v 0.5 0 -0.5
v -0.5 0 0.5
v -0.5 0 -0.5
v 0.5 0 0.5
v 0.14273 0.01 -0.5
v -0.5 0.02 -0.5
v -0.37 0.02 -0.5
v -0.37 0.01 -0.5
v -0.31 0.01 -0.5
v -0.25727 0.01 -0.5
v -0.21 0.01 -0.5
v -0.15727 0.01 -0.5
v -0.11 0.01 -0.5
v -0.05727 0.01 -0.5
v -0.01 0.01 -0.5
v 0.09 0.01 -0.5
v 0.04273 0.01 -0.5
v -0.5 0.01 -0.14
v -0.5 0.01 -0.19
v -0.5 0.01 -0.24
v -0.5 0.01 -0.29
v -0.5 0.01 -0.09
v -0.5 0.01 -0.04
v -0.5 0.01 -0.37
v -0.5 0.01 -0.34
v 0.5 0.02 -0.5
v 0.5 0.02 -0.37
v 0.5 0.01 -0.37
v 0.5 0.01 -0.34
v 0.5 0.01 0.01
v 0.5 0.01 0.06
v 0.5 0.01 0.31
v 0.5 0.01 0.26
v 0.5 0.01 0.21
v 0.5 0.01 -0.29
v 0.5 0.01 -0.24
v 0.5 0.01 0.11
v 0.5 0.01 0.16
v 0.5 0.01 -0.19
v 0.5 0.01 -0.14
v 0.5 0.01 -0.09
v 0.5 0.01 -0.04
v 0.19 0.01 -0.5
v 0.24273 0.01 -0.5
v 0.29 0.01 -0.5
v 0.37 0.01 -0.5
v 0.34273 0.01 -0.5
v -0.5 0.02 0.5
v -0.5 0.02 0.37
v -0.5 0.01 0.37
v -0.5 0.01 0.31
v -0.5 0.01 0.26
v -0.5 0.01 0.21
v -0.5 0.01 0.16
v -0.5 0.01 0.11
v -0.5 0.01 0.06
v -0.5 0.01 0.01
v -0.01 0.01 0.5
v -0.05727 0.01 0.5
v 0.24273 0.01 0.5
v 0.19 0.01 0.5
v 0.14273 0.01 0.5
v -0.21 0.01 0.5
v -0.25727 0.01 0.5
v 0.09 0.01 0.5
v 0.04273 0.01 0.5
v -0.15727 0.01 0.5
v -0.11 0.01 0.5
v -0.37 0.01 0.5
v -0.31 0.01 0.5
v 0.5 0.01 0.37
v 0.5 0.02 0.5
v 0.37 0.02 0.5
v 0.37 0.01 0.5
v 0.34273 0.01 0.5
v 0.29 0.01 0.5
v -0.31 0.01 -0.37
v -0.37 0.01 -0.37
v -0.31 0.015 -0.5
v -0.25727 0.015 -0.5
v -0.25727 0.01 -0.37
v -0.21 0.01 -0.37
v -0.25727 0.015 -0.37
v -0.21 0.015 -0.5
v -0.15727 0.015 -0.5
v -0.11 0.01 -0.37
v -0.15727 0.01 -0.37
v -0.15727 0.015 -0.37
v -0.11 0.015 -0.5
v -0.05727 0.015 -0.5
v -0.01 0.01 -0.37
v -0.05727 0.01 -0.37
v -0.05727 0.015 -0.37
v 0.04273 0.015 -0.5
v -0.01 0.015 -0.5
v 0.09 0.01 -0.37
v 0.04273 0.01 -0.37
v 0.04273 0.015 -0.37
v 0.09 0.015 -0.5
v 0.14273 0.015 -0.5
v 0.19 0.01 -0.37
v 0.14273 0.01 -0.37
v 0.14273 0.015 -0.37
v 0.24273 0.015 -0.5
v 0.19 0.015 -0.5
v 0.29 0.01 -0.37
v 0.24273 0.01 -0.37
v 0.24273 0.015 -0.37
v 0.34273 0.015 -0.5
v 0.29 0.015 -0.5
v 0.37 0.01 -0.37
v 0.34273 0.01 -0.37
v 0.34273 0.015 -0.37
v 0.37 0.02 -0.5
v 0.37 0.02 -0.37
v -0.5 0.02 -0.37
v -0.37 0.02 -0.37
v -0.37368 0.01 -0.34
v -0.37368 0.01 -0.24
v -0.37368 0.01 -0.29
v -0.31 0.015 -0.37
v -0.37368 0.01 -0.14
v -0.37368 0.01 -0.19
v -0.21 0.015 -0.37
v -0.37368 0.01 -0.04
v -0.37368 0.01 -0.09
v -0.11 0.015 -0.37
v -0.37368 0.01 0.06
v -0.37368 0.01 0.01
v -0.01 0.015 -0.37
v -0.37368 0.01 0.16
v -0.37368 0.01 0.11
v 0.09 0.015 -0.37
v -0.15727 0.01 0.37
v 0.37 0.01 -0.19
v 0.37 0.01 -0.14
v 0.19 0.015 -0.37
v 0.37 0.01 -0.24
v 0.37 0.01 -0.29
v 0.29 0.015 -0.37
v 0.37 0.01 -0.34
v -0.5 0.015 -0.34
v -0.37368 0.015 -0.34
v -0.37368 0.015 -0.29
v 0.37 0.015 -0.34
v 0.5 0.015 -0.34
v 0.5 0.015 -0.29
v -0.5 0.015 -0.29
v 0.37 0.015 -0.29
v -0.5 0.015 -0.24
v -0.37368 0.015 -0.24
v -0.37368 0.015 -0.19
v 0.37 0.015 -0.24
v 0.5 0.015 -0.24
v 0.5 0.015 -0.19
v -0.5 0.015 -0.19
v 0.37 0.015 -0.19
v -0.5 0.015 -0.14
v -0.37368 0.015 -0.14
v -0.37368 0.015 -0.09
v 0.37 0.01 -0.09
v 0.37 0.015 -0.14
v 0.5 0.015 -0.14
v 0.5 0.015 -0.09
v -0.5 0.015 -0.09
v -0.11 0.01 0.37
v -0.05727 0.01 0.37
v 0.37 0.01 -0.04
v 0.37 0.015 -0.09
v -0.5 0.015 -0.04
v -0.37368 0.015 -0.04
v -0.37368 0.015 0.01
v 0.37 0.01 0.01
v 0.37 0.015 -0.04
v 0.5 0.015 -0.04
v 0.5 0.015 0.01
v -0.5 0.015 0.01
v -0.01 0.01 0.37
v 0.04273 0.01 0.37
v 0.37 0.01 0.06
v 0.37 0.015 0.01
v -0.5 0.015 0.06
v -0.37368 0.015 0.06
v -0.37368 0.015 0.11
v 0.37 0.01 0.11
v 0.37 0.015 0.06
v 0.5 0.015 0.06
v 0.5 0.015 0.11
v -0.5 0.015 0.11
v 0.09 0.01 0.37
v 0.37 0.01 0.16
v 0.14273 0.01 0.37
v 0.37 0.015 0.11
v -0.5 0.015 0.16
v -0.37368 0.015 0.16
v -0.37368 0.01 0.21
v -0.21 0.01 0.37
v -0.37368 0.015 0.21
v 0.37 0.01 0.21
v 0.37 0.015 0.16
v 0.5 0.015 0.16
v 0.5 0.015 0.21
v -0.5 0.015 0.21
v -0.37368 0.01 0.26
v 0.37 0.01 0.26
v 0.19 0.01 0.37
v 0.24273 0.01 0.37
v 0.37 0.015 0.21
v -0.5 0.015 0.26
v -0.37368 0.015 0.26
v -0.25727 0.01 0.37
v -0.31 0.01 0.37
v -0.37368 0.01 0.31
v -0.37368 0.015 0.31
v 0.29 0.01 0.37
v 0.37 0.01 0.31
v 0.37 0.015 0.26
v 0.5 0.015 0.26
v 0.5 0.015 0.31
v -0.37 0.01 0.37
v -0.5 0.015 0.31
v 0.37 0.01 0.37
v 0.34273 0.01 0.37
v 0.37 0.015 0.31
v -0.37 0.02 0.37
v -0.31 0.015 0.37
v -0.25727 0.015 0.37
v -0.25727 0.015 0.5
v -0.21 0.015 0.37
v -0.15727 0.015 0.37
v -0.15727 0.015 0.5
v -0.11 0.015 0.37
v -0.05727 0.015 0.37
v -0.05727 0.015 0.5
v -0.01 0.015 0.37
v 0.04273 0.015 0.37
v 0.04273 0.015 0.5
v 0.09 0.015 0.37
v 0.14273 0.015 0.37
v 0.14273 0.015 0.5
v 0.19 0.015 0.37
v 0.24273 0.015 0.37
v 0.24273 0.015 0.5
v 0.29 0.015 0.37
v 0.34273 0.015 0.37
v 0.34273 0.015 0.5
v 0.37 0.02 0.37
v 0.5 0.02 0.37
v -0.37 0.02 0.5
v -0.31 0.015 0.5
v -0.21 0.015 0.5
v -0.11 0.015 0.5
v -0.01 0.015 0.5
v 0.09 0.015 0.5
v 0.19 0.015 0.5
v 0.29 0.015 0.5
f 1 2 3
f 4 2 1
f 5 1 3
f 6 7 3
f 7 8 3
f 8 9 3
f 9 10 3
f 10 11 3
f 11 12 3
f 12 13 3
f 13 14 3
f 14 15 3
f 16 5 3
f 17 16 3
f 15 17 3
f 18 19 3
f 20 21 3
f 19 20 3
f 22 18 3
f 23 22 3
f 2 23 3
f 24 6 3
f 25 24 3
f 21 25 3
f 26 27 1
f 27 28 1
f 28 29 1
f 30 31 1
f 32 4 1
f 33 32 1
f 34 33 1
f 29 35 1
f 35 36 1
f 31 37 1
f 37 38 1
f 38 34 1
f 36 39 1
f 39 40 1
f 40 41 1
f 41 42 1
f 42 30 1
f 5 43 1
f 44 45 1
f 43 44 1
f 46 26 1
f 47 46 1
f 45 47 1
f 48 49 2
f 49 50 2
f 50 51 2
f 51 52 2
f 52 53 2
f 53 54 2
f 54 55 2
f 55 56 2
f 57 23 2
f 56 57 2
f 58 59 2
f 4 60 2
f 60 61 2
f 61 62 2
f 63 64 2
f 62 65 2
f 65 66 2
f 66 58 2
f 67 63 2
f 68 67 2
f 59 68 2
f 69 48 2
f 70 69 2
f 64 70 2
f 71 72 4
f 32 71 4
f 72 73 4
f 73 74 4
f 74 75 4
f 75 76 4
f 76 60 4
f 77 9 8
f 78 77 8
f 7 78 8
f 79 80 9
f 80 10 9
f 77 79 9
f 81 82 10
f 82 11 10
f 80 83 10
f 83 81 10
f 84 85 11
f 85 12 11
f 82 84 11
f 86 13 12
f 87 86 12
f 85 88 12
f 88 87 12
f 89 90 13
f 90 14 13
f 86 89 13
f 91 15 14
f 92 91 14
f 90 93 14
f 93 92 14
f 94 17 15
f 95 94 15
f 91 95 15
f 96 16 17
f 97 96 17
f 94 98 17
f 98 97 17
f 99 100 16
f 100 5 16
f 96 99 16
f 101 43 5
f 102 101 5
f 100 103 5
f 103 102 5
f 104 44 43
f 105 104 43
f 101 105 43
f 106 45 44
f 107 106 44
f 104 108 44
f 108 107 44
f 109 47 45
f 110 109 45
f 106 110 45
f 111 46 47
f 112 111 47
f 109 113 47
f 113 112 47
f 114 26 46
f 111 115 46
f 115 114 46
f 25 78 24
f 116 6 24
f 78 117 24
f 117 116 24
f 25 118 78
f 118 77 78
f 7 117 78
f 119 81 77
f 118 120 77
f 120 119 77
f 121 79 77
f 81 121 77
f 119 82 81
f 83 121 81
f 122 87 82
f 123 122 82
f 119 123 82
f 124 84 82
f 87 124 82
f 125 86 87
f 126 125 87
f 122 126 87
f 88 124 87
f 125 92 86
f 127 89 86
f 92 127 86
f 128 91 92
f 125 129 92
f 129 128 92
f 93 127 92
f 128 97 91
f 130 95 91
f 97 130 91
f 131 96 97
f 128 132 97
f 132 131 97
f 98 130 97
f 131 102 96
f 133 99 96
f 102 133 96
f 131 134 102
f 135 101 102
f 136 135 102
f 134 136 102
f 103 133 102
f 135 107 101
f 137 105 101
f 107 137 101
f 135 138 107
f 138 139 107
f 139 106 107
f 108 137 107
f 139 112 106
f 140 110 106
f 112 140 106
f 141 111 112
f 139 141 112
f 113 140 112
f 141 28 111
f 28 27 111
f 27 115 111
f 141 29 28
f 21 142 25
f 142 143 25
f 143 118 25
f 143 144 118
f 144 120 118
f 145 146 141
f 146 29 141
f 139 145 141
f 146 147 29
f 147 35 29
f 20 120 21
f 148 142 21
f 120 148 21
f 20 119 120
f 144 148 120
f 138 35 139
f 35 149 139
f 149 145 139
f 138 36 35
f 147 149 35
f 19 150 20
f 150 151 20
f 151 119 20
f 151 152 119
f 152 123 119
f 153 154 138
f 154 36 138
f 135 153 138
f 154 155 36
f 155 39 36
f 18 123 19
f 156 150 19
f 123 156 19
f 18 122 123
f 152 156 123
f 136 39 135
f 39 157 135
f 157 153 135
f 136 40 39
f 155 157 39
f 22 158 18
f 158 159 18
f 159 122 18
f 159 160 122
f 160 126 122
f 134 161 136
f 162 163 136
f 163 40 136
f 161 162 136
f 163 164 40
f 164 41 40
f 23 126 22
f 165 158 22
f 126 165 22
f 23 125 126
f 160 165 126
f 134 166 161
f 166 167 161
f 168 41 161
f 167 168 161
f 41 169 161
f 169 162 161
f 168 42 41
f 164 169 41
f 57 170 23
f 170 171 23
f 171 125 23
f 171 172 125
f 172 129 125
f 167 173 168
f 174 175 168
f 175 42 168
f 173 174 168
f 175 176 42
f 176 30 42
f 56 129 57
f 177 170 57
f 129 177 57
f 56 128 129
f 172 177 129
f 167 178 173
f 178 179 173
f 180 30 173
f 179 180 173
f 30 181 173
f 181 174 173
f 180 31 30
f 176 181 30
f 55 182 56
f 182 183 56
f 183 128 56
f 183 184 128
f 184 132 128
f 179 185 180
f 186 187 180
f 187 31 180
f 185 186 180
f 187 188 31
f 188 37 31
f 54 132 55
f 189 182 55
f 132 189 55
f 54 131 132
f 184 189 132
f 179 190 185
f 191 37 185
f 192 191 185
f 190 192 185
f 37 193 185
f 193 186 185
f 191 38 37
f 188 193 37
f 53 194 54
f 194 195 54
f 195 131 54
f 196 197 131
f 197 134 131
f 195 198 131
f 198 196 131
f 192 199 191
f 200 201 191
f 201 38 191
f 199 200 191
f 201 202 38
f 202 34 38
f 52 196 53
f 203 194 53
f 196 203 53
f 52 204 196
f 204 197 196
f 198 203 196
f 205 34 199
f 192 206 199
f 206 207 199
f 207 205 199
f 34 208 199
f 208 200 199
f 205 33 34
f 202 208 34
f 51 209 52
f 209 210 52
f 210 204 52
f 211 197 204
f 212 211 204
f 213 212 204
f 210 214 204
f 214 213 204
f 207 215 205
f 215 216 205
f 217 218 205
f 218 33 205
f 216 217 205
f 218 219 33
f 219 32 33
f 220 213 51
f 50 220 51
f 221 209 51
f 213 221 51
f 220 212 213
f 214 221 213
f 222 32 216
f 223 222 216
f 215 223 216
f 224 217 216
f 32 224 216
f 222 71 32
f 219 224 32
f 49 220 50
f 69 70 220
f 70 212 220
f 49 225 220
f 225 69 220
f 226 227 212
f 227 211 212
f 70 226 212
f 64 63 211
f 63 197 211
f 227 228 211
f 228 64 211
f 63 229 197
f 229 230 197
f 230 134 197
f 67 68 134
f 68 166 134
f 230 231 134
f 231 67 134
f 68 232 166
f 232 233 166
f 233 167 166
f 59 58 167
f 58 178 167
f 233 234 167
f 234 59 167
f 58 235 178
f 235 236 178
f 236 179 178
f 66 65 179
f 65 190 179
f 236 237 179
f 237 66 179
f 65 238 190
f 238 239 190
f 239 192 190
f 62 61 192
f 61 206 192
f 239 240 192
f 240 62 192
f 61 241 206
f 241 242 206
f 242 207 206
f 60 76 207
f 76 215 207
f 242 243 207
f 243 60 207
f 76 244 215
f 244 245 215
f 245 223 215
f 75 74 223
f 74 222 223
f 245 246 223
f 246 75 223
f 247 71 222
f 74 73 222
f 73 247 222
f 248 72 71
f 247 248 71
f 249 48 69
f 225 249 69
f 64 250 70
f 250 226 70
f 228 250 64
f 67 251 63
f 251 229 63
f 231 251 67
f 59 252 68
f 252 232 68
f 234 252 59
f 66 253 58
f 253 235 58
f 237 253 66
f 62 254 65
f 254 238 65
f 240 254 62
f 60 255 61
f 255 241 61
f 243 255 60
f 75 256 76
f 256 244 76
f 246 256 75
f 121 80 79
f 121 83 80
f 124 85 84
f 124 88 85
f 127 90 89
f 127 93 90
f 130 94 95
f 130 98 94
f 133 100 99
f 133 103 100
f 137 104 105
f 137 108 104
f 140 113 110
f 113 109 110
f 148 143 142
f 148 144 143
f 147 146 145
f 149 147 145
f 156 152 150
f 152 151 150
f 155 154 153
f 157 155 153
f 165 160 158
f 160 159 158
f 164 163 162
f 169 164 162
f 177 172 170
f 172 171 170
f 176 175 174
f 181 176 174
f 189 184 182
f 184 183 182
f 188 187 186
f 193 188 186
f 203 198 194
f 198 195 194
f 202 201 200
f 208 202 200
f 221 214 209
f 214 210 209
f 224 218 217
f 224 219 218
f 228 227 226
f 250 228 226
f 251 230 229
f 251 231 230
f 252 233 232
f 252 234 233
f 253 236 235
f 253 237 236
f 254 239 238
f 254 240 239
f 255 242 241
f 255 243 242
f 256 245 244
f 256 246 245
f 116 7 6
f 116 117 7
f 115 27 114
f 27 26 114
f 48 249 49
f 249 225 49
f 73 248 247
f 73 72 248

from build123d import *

# Parameters (mm, degrees)
ESBO_O1_W                = 1
ESBO_O1_H                = 1
RESSALTO_EXTRUS_O1_DEPTH = 0.01
ESBO_O3_W                = 0.052728247
ESBO_O3_H                = 0.13
ESBO_O3_W_2              = 0.13
ESBO_O3_H_2              = 0.05
ESBO_O3_W_3              = 0.126315558
RESSALTO_EXTRUS_O2_DEPTH = 0.005
ESBO_O2_W                = 0.13
ESBO_O2_H                = 0.13
RESSALTO_EXTRUS_O4_DEPTH = 0.02


with BuildPart() as part:
    # Esboço1 → Ressalto-extrusão1 (new body)
    with BuildSketch(Plane(origin=(0, 0, 0), x_dir=(1, 0, 0), z_dir=(0, 1, 0))):
        Rectangle(ESBO_O1_W, ESBO_O1_H)
    extrude(amount=RESSALTO_EXTRUS_O1_DEPTH)

    # Esboço3 → Ressalto-extrusão2 (add)
    with BuildSketch(Plane(origin=(0, 0.01, 0), x_dir=(1, 0, 0), z_dir=(0, 1, 0))):
        with Locations((-0.283635876, -0.435)):
            Rectangle(ESBO_O3_W, ESBO_O3_H)
        with Locations((0.435, -0.185)):
            Rectangle(ESBO_O3_W_2, ESBO_O3_H_2)
        with Locations((-0.183635877, -0.435)):
            Rectangle(ESBO_O3_W, ESBO_O3_H)
        with Locations((-0.083635876, -0.435)):
            Rectangle(ESBO_O3_W, ESBO_O3_H)
        with Locations((0.016364124, -0.435)):
            Rectangle(ESBO_O3_W, ESBO_O3_H)
        with Locations((0.116364123, -0.435)):
            Rectangle(ESBO_O3_W, ESBO_O3_H)
        with Locations((0.216364124, -0.435)):
            Rectangle(ESBO_O3_W, ESBO_O3_H)
        with Locations((0.316364124, -0.435)):
            Rectangle(ESBO_O3_W, ESBO_O3_H)
        with Locations((0.435, -0.285)):
            Rectangle(ESBO_O3_W_2, ESBO_O3_H_2)
        with Locations((0.435, -0.085)):
            Rectangle(ESBO_O3_W_2, ESBO_O3_H_2)
        with Locations((0.435, 0.015)):
            Rectangle(ESBO_O3_W_2, ESBO_O3_H_2)
        with Locations((0.435, 0.115)):
            Rectangle(ESBO_O3_W_2, ESBO_O3_H_2)
        with Locations((0.435, 0.215)):
            Rectangle(ESBO_O3_W_2, ESBO_O3_H_2)
        with Locations((0.435, 0.315)):
            Rectangle(ESBO_O3_W_2, ESBO_O3_H_2)
        with Locations((0.316364124, 0.435)):
            Rectangle(ESBO_O3_W, ESBO_O3_H)
        with Locations((0.216364124, 0.435)):
            Rectangle(ESBO_O3_W, ESBO_O3_H)
        with Locations((0.116364123, 0.435)):
            Rectangle(ESBO_O3_W, ESBO_O3_H)
        with Locations((0.016364124, 0.435)):
            Rectangle(ESBO_O3_W, ESBO_O3_H)
        with Locations((-0.083635876, 0.435)):
            Rectangle(ESBO_O3_W, ESBO_O3_H)
        with Locations((-0.183635877, 0.435)):
            Rectangle(ESBO_O3_W, ESBO_O3_H)
        with Locations((-0.283635876, 0.435)):
            Rectangle(ESBO_O3_W, ESBO_O3_H)
        with Locations((-0.436842221, 0.315)):
            Rectangle(ESBO_O3_W_3, ESBO_O3_H_2)
        with Locations((-0.436842221, 0.215)):
            Rectangle(ESBO_O3_W_3, ESBO_O3_H_2)
        with Locations((-0.436842221, 0.115)):
            Rectangle(ESBO_O3_W_3, ESBO_O3_H_2)
        with Locations((-0.436842221, 0.015)):
            Rectangle(ESBO_O3_W_3, ESBO_O3_H_2)
        with Locations((-0.436842221, -0.085)):
            Rectangle(ESBO_O3_W_3, ESBO_O3_H_2)
        with Locations((-0.436842221, -0.185)):
            Rectangle(ESBO_O3_W_3, ESBO_O3_H_2)
        with Locations((-0.436842221, -0.285)):
            Rectangle(ESBO_O3_W_3, ESBO_O3_H_2)
    extrude(amount=RESSALTO_EXTRUS_O2_DEPTH)

    # Esboço2 → Ressalto-extrusão4 (add)
    with BuildSketch(Plane(origin=(0, 0, 0), x_dir=(1, 0, 0), z_dir=(0, 1, 0))):
        with Locations((-0.435, -0.435)):
            Rectangle(ESBO_O2_W, ESBO_O2_H)
        with Locations((0.435, 0.435)):
            Rectangle(ESBO_O2_W, ESBO_O2_H)
        with Locations((0.435, -0.435)):
            Rectangle(ESBO_O2_W, ESBO_O2_H)
        with Locations((-0.435, 0.435)):
            Rectangle(ESBO_O2_W, ESBO_O2_H)
    extrude(amount=RESSALTO_EXTRUS_O4_DEPTH)


solid = part.part
